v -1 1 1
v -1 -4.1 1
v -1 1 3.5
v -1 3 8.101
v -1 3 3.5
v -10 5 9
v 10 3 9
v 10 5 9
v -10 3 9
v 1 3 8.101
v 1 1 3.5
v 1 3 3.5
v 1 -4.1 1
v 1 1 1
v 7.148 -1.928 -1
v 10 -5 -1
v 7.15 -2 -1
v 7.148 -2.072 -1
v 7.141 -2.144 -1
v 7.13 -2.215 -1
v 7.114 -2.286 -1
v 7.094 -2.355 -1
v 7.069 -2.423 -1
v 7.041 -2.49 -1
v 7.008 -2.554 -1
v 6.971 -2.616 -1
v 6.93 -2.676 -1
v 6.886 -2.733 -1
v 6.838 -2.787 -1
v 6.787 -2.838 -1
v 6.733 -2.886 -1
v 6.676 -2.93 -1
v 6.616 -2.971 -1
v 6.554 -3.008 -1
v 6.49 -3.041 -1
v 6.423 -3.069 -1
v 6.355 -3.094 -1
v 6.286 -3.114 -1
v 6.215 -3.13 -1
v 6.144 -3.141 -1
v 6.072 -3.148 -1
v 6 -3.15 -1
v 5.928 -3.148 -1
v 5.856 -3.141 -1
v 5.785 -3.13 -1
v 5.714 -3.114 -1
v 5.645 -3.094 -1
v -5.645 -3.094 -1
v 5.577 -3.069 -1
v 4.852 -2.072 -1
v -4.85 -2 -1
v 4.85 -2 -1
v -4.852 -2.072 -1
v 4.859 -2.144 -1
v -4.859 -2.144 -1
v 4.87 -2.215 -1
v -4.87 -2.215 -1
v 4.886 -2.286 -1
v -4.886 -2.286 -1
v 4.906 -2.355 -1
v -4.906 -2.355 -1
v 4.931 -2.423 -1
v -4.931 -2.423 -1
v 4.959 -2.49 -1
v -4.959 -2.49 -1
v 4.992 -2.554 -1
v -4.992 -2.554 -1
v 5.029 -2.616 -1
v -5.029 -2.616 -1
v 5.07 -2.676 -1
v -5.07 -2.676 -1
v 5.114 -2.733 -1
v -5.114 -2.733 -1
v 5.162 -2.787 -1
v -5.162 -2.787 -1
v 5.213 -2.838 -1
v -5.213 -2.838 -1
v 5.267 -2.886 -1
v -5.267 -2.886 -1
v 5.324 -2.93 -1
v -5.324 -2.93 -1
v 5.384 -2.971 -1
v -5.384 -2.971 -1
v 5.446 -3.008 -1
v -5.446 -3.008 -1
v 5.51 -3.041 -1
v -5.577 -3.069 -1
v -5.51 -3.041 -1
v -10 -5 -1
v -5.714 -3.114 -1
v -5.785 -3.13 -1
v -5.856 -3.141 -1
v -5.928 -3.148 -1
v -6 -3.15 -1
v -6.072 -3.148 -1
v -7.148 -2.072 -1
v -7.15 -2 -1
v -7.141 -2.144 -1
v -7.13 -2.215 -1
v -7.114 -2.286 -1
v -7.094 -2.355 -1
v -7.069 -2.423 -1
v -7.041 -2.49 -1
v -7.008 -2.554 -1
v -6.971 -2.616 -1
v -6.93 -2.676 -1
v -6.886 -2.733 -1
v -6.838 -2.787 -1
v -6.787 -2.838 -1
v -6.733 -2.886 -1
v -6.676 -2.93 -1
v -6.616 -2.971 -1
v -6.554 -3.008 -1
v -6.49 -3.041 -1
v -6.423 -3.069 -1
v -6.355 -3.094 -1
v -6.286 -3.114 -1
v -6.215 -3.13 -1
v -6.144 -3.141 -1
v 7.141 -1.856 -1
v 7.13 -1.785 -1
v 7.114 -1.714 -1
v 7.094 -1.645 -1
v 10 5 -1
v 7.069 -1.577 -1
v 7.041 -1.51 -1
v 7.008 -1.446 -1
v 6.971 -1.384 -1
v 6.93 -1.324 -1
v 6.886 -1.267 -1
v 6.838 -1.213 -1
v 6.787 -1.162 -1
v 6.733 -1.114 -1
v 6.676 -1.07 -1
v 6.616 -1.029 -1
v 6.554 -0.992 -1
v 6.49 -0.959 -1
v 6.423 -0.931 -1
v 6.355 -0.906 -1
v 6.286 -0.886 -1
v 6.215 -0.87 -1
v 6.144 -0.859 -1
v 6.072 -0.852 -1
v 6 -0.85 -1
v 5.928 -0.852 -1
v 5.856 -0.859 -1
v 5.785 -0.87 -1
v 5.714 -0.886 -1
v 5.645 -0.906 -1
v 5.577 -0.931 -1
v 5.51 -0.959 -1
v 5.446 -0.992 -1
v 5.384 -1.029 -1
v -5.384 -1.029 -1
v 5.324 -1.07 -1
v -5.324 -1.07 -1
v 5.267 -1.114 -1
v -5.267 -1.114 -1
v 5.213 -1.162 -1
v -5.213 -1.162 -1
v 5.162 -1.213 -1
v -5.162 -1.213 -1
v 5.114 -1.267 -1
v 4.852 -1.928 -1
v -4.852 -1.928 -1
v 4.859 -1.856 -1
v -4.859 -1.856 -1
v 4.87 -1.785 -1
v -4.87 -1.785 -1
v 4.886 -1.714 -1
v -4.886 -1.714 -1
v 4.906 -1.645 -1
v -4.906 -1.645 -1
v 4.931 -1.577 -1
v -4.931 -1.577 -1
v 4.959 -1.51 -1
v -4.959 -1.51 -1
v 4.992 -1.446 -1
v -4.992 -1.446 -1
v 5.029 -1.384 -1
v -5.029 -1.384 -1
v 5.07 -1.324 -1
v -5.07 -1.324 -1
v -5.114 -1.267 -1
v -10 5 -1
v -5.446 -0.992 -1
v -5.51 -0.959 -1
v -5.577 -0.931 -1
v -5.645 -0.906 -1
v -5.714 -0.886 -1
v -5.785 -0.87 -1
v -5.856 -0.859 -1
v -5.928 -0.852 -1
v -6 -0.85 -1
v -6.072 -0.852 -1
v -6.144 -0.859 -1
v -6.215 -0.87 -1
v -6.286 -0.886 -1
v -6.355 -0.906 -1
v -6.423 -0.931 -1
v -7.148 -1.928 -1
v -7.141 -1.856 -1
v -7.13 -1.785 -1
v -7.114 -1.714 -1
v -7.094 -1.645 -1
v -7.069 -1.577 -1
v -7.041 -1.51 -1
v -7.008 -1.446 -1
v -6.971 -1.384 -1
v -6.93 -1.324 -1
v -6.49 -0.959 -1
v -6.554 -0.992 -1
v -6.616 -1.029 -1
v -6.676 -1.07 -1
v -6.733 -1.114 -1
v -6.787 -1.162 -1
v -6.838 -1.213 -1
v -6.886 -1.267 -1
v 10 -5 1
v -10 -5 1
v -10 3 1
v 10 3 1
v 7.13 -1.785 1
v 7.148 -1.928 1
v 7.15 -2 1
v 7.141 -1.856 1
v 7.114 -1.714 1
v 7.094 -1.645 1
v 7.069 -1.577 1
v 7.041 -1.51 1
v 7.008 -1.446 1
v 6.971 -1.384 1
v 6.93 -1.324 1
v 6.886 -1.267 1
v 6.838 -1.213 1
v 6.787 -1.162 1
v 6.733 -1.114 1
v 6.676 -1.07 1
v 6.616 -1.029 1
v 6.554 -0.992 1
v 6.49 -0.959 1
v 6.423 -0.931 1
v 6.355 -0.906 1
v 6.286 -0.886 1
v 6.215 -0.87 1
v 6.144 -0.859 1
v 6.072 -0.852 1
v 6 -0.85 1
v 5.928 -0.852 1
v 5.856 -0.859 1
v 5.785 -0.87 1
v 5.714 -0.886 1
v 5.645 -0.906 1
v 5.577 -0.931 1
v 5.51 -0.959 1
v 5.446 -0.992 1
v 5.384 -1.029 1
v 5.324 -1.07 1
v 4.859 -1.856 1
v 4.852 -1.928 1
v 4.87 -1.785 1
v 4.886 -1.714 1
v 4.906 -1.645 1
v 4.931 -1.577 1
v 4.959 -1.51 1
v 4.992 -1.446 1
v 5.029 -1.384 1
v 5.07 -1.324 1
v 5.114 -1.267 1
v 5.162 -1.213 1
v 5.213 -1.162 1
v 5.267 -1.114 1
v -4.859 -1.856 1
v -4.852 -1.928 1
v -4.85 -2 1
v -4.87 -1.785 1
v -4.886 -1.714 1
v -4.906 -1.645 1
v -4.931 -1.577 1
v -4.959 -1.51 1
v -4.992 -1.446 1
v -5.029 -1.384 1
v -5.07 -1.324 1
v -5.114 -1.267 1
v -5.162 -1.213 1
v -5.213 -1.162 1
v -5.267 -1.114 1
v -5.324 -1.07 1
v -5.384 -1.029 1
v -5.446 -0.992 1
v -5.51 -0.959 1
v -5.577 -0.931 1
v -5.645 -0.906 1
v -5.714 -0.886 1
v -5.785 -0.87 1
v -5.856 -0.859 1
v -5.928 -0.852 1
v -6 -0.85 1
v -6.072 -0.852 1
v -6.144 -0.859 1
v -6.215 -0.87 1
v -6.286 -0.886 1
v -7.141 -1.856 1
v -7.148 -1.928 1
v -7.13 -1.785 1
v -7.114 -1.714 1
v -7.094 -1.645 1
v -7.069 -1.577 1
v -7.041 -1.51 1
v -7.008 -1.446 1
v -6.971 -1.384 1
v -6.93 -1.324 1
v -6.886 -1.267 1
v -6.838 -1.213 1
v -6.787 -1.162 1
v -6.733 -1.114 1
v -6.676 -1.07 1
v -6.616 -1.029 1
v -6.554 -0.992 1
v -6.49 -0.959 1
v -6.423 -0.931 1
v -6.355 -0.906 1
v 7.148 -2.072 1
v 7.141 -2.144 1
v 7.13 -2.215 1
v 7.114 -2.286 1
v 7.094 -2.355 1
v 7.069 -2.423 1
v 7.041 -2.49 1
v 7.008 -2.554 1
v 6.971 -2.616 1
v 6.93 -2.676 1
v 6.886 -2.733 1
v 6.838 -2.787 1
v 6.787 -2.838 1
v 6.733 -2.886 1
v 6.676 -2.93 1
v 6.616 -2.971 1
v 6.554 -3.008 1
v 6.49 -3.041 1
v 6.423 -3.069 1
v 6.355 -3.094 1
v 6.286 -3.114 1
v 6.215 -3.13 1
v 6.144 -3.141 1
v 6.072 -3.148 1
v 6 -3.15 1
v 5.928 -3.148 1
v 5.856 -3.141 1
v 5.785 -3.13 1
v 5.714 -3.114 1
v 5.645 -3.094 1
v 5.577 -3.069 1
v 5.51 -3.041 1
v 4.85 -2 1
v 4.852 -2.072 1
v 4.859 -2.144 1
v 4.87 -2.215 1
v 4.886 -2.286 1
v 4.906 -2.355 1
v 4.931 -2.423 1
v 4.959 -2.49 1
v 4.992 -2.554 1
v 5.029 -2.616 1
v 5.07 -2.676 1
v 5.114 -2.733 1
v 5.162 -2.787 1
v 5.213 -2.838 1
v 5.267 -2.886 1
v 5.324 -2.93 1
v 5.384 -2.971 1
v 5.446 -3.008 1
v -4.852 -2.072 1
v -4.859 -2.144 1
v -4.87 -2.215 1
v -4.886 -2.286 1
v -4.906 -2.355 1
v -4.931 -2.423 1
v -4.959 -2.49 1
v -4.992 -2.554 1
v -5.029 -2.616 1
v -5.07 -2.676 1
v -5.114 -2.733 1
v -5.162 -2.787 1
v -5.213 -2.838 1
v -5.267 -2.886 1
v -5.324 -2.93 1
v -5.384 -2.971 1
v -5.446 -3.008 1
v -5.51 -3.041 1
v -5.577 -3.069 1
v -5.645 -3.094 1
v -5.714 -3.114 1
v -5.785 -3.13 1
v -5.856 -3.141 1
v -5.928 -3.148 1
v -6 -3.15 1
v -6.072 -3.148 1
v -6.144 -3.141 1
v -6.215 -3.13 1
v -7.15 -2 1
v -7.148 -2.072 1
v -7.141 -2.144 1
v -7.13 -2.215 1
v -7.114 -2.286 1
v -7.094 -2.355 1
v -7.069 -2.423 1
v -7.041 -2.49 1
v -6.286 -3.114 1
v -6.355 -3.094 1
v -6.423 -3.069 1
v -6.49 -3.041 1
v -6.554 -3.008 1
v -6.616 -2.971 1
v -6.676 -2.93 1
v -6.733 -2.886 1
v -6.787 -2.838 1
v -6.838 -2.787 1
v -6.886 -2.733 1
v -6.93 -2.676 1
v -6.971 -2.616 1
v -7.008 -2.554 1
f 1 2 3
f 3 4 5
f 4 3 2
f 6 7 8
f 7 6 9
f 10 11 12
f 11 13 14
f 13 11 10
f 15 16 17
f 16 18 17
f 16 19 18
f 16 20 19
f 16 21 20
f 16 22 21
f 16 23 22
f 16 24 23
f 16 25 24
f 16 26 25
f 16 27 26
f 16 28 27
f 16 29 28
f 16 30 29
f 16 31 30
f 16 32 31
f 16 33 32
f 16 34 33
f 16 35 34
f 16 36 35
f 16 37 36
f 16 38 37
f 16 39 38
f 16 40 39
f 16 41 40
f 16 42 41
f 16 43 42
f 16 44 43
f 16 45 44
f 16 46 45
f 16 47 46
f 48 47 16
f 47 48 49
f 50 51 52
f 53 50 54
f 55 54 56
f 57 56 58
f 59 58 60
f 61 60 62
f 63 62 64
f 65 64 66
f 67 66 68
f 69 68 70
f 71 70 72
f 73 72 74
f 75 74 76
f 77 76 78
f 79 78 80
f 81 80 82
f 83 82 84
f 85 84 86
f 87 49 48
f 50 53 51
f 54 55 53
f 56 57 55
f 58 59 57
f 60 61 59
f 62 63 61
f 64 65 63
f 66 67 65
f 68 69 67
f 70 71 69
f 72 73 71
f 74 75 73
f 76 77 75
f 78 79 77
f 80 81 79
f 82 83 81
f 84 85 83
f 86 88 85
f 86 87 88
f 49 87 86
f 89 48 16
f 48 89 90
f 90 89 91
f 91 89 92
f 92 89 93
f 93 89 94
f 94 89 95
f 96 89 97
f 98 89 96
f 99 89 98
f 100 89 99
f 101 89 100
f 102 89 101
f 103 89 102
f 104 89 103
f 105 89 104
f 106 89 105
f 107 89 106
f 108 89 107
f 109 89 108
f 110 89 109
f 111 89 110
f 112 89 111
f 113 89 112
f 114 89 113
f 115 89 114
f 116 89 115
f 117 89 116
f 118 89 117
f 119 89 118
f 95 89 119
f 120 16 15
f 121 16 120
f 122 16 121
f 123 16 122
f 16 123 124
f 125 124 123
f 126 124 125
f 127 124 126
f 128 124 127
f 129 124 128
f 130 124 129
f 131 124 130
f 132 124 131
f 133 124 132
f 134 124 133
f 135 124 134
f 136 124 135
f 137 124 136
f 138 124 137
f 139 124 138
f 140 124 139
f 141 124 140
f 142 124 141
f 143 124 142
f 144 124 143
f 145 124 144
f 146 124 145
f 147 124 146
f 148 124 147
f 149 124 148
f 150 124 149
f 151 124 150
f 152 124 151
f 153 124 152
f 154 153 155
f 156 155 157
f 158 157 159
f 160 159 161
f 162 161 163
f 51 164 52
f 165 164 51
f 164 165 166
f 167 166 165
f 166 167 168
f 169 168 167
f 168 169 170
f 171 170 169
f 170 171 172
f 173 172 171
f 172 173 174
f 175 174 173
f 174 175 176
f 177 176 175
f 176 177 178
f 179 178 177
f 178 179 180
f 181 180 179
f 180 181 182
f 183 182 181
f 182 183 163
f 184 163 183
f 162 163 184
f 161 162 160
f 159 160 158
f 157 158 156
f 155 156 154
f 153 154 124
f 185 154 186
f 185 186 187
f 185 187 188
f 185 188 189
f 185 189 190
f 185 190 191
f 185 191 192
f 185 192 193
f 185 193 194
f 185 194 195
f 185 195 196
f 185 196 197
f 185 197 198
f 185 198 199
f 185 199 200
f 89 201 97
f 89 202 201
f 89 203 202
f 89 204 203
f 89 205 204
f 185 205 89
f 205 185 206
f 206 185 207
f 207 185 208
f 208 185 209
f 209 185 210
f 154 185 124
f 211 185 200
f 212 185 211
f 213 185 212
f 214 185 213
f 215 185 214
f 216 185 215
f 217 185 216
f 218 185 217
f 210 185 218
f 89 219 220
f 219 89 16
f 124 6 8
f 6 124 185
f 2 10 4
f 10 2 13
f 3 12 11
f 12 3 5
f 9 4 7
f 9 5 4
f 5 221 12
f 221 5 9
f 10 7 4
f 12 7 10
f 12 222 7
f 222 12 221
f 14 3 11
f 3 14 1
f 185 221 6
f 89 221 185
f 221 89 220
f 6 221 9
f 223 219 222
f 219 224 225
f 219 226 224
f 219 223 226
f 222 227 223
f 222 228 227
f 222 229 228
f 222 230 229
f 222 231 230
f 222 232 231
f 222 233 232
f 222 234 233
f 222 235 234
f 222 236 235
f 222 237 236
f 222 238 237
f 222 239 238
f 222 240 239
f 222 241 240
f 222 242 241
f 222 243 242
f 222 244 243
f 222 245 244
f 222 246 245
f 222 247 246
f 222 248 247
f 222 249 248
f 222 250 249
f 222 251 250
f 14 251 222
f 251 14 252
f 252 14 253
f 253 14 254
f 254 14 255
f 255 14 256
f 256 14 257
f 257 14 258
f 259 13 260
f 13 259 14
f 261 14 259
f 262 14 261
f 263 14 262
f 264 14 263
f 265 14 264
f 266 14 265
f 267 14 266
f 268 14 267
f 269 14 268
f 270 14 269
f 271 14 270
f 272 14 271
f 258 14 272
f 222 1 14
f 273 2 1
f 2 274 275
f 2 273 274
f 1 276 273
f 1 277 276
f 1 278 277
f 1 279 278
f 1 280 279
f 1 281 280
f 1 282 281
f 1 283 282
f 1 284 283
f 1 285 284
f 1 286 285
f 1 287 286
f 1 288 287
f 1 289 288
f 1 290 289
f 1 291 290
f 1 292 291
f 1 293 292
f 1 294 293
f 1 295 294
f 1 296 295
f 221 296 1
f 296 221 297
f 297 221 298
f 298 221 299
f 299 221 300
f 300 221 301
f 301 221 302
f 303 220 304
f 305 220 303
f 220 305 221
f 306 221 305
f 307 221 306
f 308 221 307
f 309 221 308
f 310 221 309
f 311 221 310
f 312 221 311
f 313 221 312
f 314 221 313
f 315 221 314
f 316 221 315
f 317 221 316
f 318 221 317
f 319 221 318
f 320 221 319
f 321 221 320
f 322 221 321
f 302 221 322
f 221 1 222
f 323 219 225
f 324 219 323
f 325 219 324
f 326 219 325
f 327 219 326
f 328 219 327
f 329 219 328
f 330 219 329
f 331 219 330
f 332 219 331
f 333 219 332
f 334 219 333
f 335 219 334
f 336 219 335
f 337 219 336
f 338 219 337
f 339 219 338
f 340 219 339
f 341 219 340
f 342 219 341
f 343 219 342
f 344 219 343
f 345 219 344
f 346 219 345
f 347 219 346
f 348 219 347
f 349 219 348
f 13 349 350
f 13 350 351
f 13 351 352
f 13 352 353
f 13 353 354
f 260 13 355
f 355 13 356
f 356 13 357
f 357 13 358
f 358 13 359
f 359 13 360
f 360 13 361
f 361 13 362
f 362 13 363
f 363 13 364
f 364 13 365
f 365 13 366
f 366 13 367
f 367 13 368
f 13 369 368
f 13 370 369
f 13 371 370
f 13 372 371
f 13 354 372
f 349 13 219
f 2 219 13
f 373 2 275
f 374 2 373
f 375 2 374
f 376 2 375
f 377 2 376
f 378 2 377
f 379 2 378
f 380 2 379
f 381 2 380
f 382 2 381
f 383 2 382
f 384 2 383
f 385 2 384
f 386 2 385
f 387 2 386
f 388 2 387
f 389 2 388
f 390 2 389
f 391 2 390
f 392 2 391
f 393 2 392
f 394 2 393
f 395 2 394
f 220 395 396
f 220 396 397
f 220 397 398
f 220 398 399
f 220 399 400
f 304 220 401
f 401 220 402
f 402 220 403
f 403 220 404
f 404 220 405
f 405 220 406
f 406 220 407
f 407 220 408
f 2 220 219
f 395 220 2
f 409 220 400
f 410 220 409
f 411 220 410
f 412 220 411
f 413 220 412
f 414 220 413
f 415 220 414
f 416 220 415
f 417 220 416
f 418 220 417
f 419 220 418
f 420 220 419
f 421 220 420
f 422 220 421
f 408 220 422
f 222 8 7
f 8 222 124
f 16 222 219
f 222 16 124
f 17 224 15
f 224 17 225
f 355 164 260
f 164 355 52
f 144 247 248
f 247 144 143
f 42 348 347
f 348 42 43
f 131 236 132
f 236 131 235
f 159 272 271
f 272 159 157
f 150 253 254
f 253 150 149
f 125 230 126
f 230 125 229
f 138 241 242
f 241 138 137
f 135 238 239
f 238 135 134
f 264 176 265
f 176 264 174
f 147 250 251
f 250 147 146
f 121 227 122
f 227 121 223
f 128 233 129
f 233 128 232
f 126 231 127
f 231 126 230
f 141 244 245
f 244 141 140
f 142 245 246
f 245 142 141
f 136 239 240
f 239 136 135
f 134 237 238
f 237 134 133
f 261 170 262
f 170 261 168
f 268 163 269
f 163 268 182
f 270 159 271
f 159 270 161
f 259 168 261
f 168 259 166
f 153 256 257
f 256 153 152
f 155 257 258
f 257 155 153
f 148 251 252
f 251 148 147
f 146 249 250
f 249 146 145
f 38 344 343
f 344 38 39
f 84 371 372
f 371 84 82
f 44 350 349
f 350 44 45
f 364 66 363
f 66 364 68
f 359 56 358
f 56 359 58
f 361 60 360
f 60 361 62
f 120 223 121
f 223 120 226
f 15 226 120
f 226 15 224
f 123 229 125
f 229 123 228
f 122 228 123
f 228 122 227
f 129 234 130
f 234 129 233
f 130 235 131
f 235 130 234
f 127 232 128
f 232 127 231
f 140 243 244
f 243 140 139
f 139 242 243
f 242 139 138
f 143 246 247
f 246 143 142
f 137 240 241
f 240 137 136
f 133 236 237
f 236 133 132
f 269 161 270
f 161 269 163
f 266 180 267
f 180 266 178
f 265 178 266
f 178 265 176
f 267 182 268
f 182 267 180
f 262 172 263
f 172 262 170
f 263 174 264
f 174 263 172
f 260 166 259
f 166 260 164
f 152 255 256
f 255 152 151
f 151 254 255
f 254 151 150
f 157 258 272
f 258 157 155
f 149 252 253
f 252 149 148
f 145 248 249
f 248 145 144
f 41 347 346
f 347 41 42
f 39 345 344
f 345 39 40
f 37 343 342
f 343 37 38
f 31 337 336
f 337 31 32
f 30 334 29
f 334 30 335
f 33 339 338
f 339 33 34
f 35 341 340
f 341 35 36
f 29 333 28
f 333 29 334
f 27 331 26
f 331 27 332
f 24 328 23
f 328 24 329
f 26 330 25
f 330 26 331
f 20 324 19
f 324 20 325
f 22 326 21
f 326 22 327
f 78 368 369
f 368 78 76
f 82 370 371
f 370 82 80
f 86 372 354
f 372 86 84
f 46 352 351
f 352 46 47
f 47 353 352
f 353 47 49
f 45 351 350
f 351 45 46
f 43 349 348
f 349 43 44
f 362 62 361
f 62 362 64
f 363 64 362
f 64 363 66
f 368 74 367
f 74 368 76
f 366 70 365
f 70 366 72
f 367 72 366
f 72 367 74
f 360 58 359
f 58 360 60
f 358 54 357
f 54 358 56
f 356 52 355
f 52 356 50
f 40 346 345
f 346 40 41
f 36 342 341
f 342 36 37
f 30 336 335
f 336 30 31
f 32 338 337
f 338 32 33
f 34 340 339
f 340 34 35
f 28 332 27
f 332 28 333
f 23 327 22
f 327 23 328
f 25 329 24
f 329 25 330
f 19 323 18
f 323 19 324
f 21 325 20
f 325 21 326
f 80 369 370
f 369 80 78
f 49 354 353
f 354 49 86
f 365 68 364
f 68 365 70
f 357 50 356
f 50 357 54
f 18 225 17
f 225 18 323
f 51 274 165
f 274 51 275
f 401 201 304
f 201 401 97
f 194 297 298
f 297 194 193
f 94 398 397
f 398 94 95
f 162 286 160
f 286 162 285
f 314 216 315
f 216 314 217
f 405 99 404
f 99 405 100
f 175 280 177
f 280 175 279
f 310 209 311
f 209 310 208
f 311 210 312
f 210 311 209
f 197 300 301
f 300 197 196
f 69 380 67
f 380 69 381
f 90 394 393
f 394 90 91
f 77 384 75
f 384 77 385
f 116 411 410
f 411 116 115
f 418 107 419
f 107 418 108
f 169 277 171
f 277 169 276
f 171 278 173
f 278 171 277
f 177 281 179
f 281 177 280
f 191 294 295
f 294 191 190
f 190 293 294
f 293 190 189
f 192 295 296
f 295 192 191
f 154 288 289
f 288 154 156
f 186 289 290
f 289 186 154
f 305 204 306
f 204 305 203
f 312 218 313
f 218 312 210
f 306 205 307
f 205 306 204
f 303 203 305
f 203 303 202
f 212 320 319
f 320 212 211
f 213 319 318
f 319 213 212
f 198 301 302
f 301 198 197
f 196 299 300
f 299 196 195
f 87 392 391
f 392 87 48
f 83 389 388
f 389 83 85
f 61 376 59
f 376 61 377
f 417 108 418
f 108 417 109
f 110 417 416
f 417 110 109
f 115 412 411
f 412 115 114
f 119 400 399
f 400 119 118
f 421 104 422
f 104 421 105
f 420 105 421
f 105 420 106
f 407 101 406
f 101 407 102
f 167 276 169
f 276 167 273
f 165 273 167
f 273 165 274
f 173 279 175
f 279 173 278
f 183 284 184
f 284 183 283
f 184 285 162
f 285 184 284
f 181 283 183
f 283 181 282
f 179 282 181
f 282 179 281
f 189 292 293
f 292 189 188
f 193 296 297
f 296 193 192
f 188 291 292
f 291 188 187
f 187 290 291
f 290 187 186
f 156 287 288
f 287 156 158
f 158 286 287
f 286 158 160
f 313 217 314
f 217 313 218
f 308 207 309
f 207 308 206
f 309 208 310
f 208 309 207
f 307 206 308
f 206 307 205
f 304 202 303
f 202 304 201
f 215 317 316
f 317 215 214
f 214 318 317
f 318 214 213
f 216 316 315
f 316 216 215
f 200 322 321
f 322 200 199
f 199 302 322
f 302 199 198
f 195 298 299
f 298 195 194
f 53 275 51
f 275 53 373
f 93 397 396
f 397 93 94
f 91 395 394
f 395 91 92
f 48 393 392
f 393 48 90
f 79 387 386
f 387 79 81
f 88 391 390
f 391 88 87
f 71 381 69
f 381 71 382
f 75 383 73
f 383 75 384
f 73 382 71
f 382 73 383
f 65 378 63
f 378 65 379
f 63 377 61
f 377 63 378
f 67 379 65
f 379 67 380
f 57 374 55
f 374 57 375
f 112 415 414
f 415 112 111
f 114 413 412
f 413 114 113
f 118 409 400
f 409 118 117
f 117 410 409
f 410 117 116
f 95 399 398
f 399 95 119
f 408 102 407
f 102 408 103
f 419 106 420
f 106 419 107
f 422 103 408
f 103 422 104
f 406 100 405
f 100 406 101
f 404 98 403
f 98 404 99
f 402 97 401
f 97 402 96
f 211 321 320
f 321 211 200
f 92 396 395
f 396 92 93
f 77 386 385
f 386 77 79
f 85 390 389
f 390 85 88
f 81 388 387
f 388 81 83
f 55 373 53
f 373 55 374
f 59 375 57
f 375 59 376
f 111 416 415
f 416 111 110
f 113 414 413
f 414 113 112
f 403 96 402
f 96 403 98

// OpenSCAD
//Unité : pouce
$fn=100;//nombre de facettes
//Définition des couleurs
orange=[233/255, 93/255, 15/255];
vert=[151/255, 191/255, 13/255];
gris=[112/255, 113/255, 115/255];
noir=[0/255, 0/255, 0/255];
bleu=[51/255, 51/255, 255/255];
blanc=[255/255, 255/255, 255/255];
rouge=[255/255, 0/255, 0/255];

//taille de l'equerre :
lo=20;//longueur
la=10;//largeur
hj=10;//hauteur
ep=2;//epaisseur paroi
color(vert)difference()
{
	union()
	{
	cube([lo,la,ep], center = true);
	translate([0,la/2-ep/2,hj/2-ep/2])cube([lo,ep,hj], center = true);
	difference()
	{
	translate([0,0,hj/2-ep/2])rotate([0,0,0])cube([ep,la,hj], center = true);
	translate([0,-5,10])rotate([45,0,0])cube([4,14,14], center = true);
	translate([0,2,2])cube([4,2,3], center = true);
	}//difference
	}
	//Percage des trous de fixation :
	translate([6,-2,0])cylinder(h = hj/2, r = 1.15, center = true);
	translate([-6,-2,0])cylinder(h = hj/2, r = 1.15, center = true);
}//difference
